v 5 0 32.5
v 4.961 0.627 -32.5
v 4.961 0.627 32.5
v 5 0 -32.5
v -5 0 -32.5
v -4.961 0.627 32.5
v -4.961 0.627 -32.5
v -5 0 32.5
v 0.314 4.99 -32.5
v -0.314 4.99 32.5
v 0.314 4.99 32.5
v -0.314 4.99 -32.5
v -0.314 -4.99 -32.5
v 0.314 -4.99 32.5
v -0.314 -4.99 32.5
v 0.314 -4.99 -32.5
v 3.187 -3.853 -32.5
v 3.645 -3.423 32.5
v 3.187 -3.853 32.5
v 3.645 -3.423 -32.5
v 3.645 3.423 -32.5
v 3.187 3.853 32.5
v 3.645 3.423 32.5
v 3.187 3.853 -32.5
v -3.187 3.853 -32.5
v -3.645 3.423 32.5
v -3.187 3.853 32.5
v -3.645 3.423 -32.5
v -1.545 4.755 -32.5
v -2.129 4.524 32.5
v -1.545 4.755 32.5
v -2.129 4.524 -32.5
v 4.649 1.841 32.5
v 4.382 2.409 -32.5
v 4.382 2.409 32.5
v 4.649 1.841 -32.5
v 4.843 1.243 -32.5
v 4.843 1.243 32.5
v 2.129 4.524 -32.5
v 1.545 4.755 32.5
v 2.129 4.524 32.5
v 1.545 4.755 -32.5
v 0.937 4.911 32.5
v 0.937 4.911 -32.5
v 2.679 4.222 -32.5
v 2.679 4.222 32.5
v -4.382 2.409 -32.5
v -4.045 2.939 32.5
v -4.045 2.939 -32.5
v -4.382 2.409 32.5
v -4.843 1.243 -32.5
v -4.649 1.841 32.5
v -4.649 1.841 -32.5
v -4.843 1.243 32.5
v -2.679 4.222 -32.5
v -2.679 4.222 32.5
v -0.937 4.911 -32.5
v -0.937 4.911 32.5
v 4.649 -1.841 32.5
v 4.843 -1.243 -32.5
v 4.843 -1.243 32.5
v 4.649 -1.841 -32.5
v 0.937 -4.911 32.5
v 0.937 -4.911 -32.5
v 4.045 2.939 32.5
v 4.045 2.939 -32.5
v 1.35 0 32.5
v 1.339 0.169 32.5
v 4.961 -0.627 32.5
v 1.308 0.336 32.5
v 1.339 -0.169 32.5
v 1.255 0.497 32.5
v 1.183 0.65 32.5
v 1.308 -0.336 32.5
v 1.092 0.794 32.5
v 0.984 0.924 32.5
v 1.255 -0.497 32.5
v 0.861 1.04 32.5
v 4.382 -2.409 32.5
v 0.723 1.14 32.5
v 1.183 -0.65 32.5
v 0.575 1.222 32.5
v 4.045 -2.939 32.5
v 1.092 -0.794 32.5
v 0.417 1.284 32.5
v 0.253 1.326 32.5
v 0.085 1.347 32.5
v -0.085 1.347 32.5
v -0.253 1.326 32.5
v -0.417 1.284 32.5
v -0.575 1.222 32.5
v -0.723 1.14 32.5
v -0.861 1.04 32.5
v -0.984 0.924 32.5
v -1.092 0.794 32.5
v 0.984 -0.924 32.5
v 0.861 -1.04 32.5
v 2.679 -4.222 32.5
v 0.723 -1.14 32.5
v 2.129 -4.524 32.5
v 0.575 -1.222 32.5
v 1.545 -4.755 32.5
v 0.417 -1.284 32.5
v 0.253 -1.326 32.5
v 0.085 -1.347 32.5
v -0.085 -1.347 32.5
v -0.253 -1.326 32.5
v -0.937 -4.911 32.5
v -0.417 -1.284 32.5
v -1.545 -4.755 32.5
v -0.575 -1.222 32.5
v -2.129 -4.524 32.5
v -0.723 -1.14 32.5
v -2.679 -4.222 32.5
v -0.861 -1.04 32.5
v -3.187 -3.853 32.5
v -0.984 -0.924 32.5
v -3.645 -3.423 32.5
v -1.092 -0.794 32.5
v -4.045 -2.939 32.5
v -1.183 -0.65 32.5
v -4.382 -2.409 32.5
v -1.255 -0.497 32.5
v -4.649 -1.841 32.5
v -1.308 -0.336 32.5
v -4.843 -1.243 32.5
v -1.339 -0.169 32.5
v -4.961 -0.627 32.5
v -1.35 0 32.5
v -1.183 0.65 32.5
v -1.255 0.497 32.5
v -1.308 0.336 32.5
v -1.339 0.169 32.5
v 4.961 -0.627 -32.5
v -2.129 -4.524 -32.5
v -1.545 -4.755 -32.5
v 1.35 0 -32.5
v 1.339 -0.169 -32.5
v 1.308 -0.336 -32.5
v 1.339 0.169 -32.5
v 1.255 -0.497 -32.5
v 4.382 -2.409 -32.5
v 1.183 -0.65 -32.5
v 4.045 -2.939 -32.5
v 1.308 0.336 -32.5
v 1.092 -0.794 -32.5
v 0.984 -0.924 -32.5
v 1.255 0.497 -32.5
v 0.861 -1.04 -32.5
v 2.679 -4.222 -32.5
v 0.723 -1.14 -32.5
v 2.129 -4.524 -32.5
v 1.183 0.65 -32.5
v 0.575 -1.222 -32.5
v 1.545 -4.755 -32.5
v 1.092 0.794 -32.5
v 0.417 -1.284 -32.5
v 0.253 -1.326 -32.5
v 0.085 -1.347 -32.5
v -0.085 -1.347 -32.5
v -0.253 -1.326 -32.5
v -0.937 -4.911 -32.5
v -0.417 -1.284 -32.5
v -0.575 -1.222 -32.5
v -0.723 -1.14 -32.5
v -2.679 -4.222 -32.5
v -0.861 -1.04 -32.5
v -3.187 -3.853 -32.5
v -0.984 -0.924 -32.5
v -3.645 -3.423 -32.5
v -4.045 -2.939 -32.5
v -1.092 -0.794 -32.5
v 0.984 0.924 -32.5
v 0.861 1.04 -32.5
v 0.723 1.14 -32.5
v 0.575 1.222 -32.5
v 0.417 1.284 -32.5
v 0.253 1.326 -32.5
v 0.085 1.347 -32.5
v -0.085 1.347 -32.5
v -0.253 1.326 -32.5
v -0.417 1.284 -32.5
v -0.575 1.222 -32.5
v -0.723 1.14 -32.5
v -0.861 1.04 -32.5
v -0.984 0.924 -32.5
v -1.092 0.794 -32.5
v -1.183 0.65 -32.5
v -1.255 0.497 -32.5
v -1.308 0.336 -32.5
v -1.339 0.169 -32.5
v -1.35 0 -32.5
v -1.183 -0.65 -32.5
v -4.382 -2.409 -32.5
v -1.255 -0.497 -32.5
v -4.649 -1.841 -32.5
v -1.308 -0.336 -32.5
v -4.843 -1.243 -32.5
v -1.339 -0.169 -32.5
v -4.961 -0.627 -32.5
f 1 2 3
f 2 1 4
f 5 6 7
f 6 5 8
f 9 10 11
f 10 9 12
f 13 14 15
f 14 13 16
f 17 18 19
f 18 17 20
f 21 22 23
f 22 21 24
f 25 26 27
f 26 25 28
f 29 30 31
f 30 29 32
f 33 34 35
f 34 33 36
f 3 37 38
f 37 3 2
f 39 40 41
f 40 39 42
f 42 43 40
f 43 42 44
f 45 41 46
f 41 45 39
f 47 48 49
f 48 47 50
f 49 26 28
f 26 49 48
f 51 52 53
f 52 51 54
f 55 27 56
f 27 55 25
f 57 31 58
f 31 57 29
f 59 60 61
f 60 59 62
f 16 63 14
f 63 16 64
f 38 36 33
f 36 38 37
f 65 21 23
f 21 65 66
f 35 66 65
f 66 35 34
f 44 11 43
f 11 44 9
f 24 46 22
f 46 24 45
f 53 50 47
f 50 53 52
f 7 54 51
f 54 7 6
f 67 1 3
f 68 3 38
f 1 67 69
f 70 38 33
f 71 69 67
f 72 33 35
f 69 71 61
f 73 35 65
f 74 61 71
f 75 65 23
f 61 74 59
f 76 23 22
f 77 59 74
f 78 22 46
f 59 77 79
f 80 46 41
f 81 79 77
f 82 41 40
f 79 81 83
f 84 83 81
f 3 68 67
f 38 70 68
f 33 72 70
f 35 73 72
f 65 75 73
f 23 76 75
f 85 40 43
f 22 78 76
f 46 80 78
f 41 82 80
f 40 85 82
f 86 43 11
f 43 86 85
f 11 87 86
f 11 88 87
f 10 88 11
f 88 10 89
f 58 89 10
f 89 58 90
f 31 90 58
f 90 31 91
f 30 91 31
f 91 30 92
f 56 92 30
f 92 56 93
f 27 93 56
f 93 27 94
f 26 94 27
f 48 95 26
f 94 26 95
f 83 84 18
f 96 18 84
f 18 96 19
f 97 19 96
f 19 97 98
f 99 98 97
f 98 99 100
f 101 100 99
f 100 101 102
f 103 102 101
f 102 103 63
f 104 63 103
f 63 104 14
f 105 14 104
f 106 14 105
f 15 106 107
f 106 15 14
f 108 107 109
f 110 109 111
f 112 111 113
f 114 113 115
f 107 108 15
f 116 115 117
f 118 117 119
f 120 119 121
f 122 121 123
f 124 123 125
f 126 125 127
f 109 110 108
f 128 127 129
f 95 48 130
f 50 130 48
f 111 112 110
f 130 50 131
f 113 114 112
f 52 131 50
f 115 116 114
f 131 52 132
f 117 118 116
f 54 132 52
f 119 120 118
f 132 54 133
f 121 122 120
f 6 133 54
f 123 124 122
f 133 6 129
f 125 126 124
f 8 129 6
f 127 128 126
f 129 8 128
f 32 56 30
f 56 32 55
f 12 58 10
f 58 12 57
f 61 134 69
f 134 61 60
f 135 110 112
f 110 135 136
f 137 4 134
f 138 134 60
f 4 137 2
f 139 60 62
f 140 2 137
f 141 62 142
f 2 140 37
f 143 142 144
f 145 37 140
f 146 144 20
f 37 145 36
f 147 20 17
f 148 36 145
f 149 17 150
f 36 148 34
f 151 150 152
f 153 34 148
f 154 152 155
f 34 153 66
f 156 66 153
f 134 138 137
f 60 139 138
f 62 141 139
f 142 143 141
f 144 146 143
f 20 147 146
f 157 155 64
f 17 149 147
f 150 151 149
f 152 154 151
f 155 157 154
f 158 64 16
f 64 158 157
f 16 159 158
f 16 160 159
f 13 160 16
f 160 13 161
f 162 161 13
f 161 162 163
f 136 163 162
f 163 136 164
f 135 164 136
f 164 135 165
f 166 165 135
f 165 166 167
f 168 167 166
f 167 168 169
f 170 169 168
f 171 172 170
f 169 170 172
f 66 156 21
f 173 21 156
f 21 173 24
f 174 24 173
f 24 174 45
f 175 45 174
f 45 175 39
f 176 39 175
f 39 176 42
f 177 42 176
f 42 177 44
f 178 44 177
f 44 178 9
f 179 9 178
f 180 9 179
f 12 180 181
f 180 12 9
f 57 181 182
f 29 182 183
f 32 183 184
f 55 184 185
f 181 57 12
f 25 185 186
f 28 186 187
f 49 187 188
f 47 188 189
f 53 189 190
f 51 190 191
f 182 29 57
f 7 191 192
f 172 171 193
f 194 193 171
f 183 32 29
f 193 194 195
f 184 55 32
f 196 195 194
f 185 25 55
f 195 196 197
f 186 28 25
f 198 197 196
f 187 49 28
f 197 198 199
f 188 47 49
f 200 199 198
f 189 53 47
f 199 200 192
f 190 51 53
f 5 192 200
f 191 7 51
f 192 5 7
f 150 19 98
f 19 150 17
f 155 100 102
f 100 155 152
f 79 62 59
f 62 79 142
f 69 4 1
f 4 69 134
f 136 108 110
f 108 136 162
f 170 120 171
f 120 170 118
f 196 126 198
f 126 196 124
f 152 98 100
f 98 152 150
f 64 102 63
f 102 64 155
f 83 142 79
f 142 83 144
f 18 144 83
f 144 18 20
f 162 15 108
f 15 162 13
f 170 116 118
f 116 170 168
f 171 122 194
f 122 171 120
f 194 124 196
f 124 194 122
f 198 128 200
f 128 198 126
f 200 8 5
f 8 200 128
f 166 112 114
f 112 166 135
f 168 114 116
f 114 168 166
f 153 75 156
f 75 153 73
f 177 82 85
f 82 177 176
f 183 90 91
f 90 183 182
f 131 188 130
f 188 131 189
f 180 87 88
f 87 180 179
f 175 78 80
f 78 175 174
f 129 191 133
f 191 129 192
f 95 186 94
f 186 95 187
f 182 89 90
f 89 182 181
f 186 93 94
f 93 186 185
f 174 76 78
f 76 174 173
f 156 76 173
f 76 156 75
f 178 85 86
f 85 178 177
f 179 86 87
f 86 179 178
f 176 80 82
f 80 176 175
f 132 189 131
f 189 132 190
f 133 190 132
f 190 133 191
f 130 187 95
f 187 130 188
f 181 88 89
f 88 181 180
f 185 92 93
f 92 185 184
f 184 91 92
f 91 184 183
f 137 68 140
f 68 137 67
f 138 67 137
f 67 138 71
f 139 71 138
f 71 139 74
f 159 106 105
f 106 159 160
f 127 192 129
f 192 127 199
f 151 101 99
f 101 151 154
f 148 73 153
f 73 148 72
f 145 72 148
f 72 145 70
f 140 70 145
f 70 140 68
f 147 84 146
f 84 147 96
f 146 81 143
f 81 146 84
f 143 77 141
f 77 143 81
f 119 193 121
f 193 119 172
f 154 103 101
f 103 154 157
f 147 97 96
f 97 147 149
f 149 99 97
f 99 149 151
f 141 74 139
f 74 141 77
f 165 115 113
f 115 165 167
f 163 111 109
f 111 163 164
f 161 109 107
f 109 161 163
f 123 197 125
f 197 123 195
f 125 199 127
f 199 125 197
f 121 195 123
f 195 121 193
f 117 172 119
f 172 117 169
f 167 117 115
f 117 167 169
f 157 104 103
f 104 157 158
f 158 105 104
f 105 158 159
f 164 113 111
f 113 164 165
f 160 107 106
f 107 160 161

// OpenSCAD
$fn = 50;


difference() {
	union() {
		translate(v = [0, 0, -32.5000000000]) {
			cylinder(h = 65, r = 5.0000000000);
		}
	}
	union() {
		translate(v = [0, 0, -100.0000000000]) {
			cylinder(h = 200, r = 1.3500000000);
		}
	}
}
